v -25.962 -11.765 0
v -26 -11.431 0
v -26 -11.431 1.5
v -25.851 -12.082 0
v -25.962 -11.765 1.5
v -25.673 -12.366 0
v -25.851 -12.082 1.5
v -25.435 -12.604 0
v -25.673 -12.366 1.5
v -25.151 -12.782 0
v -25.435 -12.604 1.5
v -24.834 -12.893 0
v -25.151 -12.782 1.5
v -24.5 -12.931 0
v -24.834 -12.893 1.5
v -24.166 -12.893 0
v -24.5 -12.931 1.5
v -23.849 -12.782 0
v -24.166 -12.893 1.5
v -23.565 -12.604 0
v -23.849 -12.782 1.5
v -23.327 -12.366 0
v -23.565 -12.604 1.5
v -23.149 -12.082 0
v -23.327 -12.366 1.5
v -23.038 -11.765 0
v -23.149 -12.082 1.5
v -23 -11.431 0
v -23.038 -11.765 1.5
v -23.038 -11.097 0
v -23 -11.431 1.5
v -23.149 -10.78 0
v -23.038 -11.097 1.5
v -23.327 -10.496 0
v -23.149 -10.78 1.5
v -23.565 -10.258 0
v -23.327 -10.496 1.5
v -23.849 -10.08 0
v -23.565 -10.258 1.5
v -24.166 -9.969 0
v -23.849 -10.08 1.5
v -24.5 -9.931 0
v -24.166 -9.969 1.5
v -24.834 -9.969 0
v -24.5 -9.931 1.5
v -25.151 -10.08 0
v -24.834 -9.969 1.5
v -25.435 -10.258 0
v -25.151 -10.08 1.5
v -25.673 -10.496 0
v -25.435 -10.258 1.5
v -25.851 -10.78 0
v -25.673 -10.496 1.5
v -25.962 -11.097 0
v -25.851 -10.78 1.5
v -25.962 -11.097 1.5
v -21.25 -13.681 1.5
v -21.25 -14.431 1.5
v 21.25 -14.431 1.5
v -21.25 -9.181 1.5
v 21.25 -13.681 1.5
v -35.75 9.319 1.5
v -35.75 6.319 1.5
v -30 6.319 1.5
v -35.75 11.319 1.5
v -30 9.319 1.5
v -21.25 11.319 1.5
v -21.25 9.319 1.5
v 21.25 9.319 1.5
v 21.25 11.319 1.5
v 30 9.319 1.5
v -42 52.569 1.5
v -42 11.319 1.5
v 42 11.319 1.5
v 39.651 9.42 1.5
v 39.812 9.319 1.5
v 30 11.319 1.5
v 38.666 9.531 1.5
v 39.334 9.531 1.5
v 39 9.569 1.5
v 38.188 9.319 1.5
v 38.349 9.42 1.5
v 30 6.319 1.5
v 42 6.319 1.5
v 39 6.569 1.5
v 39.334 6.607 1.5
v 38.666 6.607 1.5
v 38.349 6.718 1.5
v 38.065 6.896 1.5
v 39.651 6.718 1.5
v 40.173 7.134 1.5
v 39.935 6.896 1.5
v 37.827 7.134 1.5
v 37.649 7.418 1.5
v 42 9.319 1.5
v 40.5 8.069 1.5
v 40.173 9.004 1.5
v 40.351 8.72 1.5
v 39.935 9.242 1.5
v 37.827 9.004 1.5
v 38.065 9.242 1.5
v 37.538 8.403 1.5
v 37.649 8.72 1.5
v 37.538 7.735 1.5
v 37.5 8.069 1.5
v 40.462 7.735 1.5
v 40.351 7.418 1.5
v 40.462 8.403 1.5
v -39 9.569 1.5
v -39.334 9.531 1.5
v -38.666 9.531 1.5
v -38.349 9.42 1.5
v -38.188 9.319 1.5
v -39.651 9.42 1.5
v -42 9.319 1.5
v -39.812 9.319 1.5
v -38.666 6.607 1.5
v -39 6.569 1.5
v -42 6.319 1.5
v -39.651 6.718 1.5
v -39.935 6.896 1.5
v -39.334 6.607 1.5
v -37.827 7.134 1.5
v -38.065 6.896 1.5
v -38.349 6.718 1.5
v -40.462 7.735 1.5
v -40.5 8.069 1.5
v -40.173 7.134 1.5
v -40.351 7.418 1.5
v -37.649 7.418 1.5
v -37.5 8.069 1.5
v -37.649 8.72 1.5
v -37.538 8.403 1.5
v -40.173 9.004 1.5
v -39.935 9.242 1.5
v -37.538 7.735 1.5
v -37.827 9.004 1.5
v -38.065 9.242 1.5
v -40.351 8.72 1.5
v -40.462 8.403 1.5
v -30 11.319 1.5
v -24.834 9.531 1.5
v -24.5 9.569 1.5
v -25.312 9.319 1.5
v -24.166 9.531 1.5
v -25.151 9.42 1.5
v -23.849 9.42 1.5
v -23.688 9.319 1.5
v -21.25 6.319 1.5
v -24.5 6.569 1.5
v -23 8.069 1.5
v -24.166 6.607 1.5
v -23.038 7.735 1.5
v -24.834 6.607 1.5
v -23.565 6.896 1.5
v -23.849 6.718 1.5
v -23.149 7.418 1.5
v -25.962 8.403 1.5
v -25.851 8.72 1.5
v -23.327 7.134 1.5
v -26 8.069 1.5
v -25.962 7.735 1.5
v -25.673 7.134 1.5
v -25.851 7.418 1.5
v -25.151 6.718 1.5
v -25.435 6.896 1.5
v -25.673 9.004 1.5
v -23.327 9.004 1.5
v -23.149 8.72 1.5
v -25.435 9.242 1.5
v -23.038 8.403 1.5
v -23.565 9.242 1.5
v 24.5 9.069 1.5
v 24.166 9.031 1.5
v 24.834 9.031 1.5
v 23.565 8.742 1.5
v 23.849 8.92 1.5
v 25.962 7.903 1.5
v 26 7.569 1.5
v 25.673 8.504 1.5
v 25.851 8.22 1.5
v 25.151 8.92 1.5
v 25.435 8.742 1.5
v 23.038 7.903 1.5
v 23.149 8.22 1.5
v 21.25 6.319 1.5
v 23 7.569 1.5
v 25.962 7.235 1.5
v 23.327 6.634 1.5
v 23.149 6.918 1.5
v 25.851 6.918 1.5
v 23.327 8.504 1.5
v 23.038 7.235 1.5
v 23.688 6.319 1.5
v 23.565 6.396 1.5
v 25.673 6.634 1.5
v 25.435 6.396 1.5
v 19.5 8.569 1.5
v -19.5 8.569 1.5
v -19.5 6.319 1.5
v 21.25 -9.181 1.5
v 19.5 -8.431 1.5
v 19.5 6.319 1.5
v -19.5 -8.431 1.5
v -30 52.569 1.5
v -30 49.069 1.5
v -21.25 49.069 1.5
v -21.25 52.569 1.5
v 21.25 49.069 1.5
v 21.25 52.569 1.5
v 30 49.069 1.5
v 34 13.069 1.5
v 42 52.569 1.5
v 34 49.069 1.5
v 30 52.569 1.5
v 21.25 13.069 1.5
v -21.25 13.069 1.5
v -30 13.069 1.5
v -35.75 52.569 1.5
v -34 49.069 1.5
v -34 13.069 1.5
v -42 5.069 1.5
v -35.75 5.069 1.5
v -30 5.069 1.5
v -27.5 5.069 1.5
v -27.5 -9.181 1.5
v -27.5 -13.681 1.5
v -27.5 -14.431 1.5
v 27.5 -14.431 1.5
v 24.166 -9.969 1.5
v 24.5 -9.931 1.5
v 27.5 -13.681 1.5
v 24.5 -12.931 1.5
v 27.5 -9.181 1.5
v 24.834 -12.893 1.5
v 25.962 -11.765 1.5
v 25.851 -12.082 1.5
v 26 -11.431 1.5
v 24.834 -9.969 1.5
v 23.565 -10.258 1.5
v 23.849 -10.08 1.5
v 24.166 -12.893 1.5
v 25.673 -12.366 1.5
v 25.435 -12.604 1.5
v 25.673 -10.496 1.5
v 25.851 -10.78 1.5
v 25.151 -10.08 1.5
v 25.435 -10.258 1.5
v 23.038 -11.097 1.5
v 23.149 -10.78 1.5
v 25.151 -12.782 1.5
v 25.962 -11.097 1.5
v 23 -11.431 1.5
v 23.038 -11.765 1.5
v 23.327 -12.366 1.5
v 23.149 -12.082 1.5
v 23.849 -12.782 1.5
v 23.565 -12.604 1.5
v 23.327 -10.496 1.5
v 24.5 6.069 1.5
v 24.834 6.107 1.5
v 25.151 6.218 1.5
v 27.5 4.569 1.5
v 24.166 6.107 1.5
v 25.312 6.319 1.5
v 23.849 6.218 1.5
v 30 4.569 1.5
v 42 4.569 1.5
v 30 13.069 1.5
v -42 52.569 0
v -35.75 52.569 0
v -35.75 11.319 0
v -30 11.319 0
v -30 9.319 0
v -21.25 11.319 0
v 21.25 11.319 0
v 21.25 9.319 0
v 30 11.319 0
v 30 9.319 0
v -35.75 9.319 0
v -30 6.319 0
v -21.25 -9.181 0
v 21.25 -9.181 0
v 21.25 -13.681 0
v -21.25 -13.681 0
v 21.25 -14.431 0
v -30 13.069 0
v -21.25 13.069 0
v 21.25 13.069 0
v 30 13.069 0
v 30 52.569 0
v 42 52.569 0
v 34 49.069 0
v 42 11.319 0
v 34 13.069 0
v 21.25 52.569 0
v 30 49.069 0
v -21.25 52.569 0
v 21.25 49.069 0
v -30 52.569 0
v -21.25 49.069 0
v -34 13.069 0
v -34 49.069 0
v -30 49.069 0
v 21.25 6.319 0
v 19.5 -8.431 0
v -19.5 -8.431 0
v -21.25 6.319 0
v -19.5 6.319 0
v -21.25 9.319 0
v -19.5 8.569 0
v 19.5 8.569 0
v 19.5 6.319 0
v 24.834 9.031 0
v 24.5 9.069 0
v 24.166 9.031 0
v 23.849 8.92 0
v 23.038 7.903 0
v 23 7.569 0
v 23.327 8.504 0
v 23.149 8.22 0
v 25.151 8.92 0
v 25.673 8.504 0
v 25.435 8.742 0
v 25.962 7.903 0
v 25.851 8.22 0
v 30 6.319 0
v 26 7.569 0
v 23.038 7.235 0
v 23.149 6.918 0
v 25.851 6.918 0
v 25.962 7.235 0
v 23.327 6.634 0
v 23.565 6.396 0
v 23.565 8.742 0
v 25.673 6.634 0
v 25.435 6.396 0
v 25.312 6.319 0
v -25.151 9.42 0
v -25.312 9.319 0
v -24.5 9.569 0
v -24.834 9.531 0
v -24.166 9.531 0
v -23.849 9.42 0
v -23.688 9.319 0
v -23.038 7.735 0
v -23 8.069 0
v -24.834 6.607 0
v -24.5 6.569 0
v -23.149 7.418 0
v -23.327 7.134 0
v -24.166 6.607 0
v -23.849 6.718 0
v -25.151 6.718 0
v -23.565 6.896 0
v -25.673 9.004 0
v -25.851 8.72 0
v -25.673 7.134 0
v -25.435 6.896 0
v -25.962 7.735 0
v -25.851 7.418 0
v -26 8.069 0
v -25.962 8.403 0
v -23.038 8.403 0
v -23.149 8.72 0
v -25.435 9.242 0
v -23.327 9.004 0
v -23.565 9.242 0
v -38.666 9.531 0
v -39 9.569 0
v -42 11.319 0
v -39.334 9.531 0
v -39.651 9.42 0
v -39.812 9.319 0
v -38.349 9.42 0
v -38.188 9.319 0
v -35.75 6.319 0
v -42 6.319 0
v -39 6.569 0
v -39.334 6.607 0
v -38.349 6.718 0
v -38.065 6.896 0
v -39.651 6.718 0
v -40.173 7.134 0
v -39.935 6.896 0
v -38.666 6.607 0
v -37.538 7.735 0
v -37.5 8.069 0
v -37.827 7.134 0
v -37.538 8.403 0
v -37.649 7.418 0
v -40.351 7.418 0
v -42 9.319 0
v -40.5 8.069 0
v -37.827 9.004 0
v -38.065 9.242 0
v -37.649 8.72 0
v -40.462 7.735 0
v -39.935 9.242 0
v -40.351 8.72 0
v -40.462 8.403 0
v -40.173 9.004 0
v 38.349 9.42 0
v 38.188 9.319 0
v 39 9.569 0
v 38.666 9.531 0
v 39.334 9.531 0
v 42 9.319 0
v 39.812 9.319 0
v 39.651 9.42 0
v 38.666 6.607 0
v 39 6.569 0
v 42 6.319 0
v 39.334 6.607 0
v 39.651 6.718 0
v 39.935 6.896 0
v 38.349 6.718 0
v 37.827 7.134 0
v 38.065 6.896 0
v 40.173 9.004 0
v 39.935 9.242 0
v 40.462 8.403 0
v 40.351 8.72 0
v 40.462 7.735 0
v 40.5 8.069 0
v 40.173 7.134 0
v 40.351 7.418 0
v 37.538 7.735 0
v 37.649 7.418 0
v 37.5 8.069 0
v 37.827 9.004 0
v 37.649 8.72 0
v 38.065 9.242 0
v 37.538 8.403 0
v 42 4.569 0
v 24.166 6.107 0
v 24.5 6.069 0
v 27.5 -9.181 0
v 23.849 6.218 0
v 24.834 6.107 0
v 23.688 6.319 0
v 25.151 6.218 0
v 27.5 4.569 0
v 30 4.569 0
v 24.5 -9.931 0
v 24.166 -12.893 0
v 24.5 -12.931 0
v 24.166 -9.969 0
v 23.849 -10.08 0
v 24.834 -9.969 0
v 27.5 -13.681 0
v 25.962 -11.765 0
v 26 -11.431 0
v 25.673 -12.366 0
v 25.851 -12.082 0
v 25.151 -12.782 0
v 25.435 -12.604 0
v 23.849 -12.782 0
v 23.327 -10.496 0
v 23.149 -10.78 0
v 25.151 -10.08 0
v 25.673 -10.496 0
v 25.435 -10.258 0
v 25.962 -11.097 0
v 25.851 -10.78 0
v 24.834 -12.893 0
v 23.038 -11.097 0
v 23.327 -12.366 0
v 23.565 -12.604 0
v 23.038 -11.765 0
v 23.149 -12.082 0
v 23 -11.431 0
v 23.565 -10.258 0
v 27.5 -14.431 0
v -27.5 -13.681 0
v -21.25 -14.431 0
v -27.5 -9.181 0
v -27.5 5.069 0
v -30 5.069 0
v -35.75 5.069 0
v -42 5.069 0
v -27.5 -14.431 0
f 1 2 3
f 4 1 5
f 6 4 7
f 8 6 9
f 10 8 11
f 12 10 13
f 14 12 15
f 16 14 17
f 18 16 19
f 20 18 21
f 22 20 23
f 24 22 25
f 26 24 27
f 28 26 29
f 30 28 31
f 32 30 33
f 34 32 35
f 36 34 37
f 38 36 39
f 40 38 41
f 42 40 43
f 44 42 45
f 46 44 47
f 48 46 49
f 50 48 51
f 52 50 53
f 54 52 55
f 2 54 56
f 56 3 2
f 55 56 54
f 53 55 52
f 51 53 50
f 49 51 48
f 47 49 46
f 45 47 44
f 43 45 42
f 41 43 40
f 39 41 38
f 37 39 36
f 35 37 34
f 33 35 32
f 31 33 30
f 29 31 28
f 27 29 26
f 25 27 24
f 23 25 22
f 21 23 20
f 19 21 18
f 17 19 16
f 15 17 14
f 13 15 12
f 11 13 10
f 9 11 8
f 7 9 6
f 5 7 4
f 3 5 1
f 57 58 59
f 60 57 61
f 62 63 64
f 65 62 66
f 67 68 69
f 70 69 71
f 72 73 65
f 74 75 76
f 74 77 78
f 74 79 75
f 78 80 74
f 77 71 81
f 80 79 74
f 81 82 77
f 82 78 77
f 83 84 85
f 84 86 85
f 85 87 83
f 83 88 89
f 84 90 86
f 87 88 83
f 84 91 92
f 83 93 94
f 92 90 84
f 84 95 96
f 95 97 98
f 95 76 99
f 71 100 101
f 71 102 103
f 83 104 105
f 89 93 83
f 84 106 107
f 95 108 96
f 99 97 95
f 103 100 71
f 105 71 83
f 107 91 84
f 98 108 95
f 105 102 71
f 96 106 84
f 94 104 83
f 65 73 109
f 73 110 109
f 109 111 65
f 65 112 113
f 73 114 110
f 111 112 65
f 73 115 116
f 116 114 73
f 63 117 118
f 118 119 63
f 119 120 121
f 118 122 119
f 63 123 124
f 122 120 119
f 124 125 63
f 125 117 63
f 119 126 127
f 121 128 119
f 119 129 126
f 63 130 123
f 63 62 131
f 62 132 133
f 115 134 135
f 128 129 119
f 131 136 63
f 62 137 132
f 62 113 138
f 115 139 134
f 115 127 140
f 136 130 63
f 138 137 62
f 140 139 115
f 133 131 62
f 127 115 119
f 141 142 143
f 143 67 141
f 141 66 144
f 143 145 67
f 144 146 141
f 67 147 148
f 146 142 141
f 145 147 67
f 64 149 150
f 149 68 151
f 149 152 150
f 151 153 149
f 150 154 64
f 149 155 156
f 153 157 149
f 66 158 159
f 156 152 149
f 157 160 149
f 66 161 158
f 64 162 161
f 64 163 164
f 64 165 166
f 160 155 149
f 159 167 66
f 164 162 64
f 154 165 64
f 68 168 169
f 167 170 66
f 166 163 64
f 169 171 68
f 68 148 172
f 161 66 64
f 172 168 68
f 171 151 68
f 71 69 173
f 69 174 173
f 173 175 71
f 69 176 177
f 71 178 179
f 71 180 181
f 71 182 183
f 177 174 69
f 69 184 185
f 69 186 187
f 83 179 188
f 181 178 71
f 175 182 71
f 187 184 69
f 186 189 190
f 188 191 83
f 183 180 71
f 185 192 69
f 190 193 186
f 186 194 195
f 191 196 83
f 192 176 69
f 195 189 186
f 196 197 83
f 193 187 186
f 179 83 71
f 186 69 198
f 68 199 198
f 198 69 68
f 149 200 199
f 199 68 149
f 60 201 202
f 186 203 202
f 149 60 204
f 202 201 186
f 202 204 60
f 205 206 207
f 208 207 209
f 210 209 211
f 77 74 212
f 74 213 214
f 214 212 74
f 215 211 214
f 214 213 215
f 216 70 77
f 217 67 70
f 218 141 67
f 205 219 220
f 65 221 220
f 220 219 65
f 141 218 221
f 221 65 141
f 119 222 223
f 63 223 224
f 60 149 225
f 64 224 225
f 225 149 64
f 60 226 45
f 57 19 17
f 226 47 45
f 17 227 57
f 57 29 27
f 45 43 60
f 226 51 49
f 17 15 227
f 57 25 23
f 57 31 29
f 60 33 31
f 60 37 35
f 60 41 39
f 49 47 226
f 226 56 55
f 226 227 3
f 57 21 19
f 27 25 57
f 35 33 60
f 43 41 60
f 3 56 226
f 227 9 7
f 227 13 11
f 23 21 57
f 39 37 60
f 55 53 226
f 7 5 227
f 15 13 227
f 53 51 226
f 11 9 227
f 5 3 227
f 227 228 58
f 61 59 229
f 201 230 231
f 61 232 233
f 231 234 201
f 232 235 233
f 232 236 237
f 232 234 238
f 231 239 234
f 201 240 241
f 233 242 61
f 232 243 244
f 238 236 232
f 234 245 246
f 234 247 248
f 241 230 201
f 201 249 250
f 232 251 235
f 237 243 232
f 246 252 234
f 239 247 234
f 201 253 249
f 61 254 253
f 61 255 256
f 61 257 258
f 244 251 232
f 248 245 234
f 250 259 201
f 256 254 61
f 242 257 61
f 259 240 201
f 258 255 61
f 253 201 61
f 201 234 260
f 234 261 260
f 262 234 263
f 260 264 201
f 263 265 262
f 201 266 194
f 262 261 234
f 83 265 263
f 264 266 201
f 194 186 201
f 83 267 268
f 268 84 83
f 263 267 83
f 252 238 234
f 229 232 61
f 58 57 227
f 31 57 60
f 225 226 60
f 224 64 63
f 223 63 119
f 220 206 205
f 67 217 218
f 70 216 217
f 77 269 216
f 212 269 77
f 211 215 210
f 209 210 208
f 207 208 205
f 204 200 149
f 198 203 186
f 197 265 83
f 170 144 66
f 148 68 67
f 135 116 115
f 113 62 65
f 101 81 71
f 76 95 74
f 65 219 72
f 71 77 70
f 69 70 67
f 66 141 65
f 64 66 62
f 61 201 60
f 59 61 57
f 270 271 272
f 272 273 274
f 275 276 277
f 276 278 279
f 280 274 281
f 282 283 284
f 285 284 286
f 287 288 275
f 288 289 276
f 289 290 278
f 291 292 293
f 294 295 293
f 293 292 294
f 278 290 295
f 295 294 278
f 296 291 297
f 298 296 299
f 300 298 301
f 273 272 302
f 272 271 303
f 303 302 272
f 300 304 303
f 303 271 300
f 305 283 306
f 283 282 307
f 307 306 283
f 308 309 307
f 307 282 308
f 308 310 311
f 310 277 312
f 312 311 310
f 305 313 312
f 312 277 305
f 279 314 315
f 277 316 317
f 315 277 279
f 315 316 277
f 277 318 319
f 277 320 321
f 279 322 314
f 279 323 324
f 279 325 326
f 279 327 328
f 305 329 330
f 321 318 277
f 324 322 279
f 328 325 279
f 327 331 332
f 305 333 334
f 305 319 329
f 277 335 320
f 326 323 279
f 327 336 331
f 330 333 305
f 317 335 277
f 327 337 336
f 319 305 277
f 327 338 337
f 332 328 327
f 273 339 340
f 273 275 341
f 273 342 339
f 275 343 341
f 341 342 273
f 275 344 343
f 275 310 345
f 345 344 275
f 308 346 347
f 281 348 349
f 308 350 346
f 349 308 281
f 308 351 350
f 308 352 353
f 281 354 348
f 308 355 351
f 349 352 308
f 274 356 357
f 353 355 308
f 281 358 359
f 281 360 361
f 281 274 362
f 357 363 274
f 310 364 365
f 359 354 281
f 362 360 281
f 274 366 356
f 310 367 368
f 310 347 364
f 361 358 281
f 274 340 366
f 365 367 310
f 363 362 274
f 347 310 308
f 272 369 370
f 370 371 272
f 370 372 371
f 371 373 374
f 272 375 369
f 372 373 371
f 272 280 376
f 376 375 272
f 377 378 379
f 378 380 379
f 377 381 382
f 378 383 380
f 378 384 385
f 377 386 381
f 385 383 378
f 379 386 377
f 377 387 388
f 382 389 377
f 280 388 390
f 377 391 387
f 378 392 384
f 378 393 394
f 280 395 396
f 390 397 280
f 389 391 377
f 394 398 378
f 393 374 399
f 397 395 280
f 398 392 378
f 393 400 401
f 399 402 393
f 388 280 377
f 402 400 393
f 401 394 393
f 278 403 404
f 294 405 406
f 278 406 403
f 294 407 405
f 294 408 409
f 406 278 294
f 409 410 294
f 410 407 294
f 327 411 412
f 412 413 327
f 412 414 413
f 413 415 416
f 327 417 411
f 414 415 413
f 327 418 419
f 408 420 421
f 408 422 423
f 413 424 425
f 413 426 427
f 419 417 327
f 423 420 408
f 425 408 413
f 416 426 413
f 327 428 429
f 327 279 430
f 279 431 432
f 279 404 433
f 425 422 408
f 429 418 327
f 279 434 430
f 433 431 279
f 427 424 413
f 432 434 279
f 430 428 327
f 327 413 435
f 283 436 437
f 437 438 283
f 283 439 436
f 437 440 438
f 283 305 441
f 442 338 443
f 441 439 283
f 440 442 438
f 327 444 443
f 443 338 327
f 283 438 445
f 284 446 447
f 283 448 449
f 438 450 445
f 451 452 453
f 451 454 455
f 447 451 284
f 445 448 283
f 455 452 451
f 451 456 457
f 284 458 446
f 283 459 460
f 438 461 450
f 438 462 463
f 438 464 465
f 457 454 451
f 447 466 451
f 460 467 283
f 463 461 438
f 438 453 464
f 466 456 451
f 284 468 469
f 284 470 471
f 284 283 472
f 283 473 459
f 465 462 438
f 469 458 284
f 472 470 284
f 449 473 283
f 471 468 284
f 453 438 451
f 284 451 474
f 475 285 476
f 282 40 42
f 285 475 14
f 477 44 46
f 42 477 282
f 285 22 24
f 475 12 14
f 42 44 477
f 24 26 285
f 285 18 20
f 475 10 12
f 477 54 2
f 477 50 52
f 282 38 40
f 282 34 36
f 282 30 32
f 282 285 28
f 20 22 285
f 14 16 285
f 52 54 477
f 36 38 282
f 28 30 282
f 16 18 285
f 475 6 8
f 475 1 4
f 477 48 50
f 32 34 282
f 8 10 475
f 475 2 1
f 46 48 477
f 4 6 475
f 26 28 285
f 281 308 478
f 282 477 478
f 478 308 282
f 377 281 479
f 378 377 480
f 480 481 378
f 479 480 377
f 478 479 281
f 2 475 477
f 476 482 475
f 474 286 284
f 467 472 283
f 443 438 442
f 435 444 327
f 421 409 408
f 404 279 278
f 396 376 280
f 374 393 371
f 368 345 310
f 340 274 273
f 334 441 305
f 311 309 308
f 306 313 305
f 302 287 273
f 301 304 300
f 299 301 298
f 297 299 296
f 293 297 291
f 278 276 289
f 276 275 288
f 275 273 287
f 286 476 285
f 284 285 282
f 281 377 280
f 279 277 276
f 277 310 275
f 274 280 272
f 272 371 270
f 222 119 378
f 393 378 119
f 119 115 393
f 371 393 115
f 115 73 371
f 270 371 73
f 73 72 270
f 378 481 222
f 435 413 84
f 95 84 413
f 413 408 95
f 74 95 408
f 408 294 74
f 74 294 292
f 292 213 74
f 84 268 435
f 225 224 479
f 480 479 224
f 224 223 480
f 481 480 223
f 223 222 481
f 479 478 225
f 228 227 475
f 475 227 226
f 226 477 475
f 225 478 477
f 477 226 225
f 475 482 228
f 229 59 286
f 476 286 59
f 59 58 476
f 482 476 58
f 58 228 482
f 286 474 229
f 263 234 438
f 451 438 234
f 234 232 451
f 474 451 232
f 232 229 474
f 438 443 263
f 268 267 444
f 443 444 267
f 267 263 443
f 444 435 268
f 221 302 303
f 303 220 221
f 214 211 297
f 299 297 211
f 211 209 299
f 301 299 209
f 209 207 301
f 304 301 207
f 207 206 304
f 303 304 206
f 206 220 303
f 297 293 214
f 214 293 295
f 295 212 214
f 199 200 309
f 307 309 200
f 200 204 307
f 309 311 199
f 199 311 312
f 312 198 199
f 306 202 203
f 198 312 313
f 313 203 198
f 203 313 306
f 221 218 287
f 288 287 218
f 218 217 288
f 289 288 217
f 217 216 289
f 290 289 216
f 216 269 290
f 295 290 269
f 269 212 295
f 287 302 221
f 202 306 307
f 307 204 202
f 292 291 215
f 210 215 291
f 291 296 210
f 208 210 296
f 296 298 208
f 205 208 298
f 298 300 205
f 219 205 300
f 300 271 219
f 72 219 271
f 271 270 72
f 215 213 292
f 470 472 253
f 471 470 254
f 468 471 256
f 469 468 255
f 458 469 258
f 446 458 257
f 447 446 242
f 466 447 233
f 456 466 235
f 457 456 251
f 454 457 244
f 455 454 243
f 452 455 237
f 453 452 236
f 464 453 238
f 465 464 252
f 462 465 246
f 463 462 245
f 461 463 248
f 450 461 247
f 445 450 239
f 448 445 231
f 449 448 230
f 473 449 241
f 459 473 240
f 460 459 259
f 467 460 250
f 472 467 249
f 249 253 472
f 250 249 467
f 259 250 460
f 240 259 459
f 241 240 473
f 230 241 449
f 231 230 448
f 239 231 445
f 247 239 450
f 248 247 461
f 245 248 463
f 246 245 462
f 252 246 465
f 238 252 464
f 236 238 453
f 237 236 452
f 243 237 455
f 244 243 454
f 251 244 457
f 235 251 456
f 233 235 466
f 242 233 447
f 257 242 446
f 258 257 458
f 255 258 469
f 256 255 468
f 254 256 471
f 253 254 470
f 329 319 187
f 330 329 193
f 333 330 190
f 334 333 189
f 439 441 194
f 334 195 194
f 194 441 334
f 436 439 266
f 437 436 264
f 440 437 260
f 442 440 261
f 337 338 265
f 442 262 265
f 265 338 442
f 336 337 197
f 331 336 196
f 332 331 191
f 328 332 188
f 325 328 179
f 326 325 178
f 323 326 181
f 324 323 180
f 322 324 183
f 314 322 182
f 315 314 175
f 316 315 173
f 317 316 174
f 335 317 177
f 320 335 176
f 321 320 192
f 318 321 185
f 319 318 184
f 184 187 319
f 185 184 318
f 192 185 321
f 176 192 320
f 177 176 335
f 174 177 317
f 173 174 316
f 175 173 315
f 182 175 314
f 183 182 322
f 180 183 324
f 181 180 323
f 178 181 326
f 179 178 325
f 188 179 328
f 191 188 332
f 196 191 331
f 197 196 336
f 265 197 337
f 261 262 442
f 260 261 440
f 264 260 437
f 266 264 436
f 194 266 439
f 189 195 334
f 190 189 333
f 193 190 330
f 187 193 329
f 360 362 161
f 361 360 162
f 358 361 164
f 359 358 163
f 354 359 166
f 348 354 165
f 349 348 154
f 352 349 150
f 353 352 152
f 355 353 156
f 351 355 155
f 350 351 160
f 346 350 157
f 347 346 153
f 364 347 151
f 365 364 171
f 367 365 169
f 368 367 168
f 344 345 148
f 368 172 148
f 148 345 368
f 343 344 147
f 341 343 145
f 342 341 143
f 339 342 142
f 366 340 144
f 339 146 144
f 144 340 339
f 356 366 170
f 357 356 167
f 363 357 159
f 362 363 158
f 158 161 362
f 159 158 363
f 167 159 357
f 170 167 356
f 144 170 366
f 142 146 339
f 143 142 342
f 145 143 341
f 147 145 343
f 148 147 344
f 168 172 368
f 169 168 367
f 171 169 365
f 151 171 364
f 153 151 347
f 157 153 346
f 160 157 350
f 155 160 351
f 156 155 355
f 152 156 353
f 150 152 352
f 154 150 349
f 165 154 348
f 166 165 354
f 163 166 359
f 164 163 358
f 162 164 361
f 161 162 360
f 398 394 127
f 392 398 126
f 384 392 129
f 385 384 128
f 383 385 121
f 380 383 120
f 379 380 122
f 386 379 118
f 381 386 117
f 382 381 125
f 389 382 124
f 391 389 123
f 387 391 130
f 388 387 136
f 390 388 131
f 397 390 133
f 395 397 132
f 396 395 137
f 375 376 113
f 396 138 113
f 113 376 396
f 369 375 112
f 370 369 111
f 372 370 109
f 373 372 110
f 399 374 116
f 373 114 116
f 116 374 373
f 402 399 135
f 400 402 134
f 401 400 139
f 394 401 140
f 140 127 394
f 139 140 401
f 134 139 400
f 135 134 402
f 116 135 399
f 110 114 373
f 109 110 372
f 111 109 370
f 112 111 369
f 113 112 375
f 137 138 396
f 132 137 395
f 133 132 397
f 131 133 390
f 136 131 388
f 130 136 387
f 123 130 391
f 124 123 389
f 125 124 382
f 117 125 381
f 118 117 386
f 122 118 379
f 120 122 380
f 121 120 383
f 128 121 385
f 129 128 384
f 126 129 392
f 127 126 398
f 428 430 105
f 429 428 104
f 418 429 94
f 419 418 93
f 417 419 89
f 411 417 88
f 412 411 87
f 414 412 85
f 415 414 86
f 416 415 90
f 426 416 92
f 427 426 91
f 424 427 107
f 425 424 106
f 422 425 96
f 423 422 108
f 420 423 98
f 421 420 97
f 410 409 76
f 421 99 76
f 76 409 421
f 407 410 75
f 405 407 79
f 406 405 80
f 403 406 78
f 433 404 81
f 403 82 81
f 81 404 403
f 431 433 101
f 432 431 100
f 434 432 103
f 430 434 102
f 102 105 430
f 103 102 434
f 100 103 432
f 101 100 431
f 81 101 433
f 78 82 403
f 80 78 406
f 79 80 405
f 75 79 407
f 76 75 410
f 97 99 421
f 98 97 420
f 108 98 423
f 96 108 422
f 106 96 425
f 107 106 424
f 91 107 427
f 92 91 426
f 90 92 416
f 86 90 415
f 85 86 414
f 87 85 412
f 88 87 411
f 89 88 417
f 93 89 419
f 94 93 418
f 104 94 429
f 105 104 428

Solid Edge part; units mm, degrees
sketch "Sketch1" plane through (0, 0, 0) normal (0, 0, 1) x (1, 0, 0)
  line L0 (-34, 13.069) -> (34, 13.069)
  line L1 (34, 13.069) -> (34, 49.069)
  line L2 (34, 49.069) -> (-34, 49.069)
  line L3 (-34, 49.069) -> (-34, 13.069)
  line L4 (-19.5, -8.431) -> (19.5, -8.431)
  line L5 (19.5, -8.431) -> (19.5, 8.569)
  line L6 (19.5, 8.569) -> (-19.5, 8.569)
  line L7 (-19.5, 8.569) -> (-19.5, -8.431)
  line L8 (-42, 57.069) -> (-42, 5.069)
  line L9 (-27.5, 5.069) -> (-42, 5.069)
  line L10 (-27.5, -14.431) -> (-27.5, 5.069)
  line L11 (27.5, -14.431) -> (-27.5, -14.431)
  line L12 (27.5, 4.569) -> (27.5, -14.431)
  line L13 (42, 4.569) -> (27.5, 4.569)
  line L14 (42, 57.069) -> (42, 4.569)
  line L15 (-42, 57.069) -> (42, 57.069)
  dimension "D1" = 34
extrude "Protrusion1" add sketch "Sketch1" along normal blind 1.5
sketch "Sketch2" plane through (0, 21.319, 1.5) normal (0, 0, 1) x (0, 1, 0)
  circle A0 centre (-32.75, 24.5) radius 1.5
  circle A1 centre (-32.75, -24.5) radius 1.5
  circle A2 centre (-13.75, -24.5) radius 1.5
  circle A3 centre (-13.25, 24.5) radius 1.5
  circle A4 centre (-13.25, 39) radius 1.5
  circle A5 centre (32.75, 39) radius 1.5
  circle A6 centre (32.75, -39) radius 1.5
  circle A7 centre (-13.25, -39) radius 1.5
  dimension "D1" = 32.75
  dimension "D2" = 32.75
extrude "VaciadoExtruido_29" cut sketch "Sketch2" along normal mid plane 284.5521
sketch "Sketch3" plane through (0, 21.319, 1.5) normal (0, 0, 1) x (0, 1, 0)
  line L0 (31.25, 54.1332) -> (31.25, -56.2447)
  spline S0 degree 3 poles (31.25, 54.1332) (126.4959, 79.9552) (115.951, -69.9426) (31.25, -56.2447) knots 0 0 0 0 1 1 1 1
extrude "VaciadoExtruido_30" cut sketch "Sketch3" along normal mid plane 225.2682
